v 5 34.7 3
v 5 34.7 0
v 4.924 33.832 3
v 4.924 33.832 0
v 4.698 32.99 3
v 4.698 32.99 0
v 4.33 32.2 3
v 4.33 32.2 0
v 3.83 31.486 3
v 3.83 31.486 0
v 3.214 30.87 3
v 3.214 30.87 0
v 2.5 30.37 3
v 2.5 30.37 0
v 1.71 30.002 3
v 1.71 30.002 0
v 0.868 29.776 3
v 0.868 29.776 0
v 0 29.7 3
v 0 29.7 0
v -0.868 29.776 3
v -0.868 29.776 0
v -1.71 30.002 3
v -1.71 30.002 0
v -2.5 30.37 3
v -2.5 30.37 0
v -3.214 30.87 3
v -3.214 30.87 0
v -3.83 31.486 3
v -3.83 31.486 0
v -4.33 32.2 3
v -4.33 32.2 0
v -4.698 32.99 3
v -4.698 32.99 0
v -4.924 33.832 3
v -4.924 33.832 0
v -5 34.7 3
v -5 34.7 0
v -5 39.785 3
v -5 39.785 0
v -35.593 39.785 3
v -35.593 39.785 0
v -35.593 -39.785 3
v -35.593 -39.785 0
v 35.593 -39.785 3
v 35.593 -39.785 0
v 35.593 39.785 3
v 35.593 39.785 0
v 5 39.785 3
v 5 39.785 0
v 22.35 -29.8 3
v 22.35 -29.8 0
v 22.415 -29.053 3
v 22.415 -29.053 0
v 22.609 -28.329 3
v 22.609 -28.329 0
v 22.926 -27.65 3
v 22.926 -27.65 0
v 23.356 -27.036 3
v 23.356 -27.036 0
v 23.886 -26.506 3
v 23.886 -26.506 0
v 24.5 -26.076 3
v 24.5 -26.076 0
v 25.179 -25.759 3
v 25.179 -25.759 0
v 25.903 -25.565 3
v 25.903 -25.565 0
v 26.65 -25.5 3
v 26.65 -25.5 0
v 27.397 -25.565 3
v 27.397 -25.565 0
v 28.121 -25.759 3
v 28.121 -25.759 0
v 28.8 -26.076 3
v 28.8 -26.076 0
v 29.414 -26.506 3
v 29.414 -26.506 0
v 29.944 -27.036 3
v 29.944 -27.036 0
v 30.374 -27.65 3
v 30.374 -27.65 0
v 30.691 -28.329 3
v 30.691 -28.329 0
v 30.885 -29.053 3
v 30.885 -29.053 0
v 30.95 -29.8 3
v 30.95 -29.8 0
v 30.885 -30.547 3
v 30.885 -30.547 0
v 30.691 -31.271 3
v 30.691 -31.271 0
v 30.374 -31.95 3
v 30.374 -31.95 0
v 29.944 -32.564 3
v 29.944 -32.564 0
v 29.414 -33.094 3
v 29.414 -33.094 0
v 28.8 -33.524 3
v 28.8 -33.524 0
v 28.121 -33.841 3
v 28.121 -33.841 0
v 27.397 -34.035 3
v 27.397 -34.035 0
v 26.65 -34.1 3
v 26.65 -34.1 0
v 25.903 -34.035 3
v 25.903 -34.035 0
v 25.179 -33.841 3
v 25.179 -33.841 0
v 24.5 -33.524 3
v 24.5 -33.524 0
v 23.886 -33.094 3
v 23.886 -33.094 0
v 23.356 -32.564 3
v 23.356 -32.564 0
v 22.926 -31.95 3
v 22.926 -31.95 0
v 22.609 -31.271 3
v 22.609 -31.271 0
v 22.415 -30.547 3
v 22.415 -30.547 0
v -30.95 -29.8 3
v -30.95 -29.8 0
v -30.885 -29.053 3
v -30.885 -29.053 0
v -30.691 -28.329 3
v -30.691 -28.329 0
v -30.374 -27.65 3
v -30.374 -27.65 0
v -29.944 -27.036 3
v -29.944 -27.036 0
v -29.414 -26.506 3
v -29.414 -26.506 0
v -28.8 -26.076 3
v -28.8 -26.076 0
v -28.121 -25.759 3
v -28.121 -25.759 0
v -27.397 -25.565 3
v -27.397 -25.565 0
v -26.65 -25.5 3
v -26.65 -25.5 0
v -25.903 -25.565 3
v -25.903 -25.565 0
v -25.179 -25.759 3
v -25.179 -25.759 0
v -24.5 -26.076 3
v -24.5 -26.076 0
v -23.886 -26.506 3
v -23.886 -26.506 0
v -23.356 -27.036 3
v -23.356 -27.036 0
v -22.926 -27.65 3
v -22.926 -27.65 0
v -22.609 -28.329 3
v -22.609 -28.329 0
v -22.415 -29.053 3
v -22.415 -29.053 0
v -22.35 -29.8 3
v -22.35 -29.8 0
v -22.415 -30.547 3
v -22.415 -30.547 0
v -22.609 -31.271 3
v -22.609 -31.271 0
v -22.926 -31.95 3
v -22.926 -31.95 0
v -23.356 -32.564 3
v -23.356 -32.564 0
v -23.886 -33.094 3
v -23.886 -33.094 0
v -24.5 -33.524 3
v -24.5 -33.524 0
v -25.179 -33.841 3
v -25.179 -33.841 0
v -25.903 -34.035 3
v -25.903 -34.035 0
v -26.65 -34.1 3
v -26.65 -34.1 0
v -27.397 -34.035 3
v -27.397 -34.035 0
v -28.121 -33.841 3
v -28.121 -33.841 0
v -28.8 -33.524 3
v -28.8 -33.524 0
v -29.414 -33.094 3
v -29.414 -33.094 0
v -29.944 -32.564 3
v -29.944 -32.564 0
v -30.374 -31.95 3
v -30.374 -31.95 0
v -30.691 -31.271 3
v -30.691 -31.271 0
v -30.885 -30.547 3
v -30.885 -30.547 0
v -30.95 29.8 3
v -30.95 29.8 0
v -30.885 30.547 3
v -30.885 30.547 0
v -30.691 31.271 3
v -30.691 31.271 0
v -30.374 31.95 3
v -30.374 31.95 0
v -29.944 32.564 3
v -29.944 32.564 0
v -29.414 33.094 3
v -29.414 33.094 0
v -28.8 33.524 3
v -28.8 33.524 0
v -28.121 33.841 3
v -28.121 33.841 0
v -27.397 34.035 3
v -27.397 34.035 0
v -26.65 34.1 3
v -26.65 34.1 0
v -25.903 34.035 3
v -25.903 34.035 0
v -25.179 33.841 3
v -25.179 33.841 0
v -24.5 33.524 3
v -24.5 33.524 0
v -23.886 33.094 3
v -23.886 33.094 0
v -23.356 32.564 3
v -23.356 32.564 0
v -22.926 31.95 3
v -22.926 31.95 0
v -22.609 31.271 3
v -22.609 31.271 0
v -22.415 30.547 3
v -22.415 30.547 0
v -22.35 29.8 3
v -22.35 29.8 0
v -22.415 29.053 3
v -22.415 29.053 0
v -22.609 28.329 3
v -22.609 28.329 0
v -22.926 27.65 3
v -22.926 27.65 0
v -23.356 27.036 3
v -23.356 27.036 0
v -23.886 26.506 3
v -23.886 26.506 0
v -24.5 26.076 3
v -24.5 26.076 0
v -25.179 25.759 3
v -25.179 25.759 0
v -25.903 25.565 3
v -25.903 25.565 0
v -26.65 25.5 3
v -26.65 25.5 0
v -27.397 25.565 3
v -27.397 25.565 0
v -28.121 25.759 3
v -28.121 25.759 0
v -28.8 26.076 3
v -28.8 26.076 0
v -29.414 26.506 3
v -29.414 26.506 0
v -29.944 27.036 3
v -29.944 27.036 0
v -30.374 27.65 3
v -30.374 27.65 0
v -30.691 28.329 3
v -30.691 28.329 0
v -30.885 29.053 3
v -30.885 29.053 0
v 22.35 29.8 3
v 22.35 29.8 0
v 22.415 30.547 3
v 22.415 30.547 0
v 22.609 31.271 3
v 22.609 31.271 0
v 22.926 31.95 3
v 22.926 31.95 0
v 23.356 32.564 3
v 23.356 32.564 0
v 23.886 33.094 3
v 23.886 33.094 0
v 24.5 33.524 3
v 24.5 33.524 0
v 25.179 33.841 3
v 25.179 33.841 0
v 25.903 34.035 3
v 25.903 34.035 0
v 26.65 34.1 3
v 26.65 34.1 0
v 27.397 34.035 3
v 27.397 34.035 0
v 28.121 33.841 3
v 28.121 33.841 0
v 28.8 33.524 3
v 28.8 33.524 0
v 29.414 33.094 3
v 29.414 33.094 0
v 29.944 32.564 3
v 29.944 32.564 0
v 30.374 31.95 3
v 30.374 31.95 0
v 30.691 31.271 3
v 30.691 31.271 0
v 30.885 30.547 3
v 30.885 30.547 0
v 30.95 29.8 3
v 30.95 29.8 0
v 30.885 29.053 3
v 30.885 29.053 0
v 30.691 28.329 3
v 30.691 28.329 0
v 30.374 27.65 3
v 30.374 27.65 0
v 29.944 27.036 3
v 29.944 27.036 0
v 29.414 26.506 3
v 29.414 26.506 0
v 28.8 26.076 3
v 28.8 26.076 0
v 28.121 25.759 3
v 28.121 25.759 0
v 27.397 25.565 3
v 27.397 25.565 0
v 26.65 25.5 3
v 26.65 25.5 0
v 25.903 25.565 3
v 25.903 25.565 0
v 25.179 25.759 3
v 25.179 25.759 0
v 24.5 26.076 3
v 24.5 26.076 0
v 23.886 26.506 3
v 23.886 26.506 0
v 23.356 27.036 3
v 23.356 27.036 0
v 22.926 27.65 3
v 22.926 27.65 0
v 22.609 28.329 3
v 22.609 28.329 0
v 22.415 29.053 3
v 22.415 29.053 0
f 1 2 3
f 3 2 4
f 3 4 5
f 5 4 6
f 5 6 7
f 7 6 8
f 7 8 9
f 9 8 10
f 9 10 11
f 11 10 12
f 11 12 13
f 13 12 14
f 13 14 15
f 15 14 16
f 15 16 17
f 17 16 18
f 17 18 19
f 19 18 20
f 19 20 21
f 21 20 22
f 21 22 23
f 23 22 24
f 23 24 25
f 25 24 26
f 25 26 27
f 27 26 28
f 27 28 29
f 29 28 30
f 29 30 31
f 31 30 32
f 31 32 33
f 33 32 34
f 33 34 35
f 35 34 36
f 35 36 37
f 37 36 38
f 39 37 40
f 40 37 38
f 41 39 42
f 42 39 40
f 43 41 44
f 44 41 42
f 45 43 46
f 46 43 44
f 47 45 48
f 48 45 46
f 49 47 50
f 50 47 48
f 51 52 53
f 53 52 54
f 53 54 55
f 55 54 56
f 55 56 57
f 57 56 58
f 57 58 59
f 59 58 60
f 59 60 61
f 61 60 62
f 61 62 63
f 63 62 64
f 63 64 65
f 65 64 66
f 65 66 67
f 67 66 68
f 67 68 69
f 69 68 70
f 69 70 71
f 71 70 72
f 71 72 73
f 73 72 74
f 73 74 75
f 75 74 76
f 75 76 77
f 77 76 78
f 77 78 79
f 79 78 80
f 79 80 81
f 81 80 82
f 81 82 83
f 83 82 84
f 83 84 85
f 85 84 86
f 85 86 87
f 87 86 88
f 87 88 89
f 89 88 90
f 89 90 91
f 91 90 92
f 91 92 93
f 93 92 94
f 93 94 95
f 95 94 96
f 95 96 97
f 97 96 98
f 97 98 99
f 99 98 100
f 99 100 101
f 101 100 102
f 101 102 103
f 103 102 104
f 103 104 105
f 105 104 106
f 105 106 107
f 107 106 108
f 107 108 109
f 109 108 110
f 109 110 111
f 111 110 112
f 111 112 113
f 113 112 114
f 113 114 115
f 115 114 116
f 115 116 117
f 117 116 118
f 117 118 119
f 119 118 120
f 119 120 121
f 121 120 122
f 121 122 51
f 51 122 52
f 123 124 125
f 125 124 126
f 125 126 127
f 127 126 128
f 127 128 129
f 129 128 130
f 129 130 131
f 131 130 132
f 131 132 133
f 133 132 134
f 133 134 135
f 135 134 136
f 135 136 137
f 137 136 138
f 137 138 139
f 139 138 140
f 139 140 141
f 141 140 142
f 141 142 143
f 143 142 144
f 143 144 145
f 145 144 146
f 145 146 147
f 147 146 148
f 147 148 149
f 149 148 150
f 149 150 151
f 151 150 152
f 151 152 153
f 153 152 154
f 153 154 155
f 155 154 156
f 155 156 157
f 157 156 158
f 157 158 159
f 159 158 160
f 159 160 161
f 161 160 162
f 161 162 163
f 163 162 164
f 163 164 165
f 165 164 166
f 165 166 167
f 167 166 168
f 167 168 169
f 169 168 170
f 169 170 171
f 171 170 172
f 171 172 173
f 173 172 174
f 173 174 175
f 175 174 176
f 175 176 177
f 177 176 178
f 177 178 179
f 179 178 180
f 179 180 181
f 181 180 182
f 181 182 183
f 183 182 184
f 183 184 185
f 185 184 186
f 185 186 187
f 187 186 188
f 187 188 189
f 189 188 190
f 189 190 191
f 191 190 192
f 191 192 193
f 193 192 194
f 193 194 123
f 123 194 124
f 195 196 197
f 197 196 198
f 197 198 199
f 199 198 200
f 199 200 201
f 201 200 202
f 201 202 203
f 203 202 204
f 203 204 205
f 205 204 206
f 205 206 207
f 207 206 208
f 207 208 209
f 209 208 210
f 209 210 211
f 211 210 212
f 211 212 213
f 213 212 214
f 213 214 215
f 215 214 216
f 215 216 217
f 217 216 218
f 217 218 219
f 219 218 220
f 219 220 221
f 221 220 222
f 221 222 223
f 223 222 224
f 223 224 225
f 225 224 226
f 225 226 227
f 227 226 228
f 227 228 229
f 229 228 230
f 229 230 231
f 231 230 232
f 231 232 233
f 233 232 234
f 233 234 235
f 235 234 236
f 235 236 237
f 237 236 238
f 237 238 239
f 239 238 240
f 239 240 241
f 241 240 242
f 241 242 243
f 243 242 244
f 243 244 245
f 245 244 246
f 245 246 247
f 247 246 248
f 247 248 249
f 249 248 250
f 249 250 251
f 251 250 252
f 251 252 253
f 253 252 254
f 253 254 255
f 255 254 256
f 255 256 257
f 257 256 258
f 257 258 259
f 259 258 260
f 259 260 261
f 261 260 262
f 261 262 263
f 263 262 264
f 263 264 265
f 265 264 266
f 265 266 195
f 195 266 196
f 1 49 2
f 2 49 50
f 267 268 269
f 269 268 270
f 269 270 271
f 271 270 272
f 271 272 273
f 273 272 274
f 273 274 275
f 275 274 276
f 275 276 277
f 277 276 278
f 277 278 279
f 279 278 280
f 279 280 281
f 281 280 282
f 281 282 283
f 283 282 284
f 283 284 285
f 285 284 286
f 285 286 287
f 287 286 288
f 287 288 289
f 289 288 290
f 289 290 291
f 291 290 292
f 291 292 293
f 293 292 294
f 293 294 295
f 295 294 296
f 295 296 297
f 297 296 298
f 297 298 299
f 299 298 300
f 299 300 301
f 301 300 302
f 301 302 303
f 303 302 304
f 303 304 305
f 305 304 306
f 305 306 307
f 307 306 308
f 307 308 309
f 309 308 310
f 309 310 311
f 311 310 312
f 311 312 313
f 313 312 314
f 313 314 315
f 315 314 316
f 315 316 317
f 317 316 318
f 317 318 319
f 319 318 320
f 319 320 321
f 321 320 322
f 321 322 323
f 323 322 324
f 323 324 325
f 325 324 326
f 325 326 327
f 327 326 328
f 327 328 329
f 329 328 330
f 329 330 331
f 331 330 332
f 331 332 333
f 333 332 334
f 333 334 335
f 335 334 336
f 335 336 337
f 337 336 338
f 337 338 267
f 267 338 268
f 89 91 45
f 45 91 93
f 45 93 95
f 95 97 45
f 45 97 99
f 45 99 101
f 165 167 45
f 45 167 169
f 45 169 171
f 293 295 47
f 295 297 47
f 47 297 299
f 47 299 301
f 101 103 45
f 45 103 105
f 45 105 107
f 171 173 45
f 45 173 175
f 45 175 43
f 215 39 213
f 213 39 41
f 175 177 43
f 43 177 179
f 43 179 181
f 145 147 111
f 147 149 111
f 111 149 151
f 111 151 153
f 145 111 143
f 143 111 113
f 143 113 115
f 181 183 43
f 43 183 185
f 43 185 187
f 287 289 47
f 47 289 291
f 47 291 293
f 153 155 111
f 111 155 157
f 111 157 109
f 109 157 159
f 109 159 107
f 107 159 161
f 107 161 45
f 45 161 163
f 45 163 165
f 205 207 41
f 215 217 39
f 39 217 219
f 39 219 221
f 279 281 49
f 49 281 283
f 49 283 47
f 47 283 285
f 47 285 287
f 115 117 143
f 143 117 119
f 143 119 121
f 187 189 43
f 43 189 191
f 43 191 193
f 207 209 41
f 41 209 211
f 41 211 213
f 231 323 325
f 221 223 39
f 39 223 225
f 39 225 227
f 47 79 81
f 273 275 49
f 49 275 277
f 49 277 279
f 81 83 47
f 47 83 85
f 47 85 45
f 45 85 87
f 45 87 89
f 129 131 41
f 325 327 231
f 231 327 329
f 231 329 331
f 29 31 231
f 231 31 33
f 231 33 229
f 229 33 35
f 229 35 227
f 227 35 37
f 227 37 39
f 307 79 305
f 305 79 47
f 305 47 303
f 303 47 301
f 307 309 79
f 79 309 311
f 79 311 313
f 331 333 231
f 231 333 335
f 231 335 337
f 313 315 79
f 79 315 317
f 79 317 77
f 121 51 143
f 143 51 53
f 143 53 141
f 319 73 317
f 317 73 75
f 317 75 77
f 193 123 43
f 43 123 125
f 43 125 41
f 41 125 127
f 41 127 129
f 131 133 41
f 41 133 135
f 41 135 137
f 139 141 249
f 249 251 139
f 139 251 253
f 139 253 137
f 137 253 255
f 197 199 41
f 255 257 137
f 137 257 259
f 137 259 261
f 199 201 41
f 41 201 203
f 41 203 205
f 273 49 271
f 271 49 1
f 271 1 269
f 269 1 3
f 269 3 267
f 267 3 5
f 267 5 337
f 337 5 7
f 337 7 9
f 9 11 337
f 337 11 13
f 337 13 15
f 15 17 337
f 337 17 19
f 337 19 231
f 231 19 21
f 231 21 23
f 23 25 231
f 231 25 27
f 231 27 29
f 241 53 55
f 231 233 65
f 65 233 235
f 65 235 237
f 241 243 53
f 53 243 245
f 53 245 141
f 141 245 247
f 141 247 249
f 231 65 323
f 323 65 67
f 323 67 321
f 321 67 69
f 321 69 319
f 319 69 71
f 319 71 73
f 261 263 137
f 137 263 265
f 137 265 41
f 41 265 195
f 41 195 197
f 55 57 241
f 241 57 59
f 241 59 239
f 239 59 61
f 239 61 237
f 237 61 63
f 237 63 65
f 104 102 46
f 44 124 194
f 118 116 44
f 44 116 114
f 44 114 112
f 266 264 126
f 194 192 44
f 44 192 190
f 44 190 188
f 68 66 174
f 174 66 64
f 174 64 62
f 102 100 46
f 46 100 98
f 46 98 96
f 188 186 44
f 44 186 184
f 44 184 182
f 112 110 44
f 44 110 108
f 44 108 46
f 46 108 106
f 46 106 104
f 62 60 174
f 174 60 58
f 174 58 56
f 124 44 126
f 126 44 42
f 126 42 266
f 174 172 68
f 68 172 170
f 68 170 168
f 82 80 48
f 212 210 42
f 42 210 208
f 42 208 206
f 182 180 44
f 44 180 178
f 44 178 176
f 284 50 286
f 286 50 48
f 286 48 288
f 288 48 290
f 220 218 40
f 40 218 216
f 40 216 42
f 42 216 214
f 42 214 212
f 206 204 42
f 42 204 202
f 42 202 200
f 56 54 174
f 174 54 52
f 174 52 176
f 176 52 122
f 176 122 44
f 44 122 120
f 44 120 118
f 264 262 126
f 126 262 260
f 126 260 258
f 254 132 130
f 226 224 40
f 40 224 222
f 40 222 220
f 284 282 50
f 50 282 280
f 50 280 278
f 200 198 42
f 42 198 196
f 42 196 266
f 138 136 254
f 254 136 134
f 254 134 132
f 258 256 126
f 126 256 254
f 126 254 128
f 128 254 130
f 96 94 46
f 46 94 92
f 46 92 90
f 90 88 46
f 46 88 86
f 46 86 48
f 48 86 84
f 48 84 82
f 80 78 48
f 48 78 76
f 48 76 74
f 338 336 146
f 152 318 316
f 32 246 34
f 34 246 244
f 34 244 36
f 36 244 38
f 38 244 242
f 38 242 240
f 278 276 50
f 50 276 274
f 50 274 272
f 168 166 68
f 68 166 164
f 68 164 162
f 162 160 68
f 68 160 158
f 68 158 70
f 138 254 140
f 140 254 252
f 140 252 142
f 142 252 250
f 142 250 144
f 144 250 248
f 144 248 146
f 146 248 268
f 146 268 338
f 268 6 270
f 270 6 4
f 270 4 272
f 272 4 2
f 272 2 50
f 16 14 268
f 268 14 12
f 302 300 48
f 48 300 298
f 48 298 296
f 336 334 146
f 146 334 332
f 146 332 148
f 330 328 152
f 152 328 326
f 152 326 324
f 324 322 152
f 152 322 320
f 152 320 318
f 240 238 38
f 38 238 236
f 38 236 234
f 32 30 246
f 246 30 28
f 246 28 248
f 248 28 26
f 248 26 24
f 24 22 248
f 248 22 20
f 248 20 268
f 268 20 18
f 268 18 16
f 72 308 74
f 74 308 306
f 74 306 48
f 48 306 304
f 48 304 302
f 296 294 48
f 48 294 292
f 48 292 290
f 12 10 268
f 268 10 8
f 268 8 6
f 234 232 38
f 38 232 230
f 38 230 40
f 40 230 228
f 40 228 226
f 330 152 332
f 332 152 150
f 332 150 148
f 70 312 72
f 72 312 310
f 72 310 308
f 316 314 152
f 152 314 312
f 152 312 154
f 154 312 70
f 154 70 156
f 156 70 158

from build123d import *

# Parameters (mm, degrees)
SKETCH1_R           = 4.3
BOSS_EXTRUDE1_DEPTH = 3


with BuildPart() as part:
    # Sketch1 → Boss-Extrude1 (new body)
    with BuildSketch(Plane.XY):
        with BuildLine():
            Line((-35.59279418, 39.784944199), (-35.59279418, -39.784944199))
            Line((-35.59279418, -39.784944199), (35.59279418, -39.784944199))
            Line((35.59279418, -39.784944199), (35.59279418, 39.784944199))
            Line((35.59279418, 39.784944199), (5, 39.784944199))
            Line((5, 39.784944199), (5, 34.7))
            ThreePointArc((5, 34.7), (0, 29.7), (-5, 34.7))
            Line((-5, 34.7), (-5, 39.784944199))
            Line((-5, 39.784944199), (-35.59279418, 39.784944199))
        make_face()
        with Locations((-26.65, -29.8)):
            Circle(SKETCH1_R, mode=Mode.SUBTRACT)
        with Locations((26.65, -29.8)):
            Circle(SKETCH1_R, mode=Mode.SUBTRACT)
        with Locations((-26.65, 29.8)):
            Circle(SKETCH1_R, mode=Mode.SUBTRACT)
        with Locations((26.65, 29.8)):
            Circle(SKETCH1_R, mode=Mode.SUBTRACT)
    extrude(amount=BOSS_EXTRUDE1_DEPTH)


solid = part.part
